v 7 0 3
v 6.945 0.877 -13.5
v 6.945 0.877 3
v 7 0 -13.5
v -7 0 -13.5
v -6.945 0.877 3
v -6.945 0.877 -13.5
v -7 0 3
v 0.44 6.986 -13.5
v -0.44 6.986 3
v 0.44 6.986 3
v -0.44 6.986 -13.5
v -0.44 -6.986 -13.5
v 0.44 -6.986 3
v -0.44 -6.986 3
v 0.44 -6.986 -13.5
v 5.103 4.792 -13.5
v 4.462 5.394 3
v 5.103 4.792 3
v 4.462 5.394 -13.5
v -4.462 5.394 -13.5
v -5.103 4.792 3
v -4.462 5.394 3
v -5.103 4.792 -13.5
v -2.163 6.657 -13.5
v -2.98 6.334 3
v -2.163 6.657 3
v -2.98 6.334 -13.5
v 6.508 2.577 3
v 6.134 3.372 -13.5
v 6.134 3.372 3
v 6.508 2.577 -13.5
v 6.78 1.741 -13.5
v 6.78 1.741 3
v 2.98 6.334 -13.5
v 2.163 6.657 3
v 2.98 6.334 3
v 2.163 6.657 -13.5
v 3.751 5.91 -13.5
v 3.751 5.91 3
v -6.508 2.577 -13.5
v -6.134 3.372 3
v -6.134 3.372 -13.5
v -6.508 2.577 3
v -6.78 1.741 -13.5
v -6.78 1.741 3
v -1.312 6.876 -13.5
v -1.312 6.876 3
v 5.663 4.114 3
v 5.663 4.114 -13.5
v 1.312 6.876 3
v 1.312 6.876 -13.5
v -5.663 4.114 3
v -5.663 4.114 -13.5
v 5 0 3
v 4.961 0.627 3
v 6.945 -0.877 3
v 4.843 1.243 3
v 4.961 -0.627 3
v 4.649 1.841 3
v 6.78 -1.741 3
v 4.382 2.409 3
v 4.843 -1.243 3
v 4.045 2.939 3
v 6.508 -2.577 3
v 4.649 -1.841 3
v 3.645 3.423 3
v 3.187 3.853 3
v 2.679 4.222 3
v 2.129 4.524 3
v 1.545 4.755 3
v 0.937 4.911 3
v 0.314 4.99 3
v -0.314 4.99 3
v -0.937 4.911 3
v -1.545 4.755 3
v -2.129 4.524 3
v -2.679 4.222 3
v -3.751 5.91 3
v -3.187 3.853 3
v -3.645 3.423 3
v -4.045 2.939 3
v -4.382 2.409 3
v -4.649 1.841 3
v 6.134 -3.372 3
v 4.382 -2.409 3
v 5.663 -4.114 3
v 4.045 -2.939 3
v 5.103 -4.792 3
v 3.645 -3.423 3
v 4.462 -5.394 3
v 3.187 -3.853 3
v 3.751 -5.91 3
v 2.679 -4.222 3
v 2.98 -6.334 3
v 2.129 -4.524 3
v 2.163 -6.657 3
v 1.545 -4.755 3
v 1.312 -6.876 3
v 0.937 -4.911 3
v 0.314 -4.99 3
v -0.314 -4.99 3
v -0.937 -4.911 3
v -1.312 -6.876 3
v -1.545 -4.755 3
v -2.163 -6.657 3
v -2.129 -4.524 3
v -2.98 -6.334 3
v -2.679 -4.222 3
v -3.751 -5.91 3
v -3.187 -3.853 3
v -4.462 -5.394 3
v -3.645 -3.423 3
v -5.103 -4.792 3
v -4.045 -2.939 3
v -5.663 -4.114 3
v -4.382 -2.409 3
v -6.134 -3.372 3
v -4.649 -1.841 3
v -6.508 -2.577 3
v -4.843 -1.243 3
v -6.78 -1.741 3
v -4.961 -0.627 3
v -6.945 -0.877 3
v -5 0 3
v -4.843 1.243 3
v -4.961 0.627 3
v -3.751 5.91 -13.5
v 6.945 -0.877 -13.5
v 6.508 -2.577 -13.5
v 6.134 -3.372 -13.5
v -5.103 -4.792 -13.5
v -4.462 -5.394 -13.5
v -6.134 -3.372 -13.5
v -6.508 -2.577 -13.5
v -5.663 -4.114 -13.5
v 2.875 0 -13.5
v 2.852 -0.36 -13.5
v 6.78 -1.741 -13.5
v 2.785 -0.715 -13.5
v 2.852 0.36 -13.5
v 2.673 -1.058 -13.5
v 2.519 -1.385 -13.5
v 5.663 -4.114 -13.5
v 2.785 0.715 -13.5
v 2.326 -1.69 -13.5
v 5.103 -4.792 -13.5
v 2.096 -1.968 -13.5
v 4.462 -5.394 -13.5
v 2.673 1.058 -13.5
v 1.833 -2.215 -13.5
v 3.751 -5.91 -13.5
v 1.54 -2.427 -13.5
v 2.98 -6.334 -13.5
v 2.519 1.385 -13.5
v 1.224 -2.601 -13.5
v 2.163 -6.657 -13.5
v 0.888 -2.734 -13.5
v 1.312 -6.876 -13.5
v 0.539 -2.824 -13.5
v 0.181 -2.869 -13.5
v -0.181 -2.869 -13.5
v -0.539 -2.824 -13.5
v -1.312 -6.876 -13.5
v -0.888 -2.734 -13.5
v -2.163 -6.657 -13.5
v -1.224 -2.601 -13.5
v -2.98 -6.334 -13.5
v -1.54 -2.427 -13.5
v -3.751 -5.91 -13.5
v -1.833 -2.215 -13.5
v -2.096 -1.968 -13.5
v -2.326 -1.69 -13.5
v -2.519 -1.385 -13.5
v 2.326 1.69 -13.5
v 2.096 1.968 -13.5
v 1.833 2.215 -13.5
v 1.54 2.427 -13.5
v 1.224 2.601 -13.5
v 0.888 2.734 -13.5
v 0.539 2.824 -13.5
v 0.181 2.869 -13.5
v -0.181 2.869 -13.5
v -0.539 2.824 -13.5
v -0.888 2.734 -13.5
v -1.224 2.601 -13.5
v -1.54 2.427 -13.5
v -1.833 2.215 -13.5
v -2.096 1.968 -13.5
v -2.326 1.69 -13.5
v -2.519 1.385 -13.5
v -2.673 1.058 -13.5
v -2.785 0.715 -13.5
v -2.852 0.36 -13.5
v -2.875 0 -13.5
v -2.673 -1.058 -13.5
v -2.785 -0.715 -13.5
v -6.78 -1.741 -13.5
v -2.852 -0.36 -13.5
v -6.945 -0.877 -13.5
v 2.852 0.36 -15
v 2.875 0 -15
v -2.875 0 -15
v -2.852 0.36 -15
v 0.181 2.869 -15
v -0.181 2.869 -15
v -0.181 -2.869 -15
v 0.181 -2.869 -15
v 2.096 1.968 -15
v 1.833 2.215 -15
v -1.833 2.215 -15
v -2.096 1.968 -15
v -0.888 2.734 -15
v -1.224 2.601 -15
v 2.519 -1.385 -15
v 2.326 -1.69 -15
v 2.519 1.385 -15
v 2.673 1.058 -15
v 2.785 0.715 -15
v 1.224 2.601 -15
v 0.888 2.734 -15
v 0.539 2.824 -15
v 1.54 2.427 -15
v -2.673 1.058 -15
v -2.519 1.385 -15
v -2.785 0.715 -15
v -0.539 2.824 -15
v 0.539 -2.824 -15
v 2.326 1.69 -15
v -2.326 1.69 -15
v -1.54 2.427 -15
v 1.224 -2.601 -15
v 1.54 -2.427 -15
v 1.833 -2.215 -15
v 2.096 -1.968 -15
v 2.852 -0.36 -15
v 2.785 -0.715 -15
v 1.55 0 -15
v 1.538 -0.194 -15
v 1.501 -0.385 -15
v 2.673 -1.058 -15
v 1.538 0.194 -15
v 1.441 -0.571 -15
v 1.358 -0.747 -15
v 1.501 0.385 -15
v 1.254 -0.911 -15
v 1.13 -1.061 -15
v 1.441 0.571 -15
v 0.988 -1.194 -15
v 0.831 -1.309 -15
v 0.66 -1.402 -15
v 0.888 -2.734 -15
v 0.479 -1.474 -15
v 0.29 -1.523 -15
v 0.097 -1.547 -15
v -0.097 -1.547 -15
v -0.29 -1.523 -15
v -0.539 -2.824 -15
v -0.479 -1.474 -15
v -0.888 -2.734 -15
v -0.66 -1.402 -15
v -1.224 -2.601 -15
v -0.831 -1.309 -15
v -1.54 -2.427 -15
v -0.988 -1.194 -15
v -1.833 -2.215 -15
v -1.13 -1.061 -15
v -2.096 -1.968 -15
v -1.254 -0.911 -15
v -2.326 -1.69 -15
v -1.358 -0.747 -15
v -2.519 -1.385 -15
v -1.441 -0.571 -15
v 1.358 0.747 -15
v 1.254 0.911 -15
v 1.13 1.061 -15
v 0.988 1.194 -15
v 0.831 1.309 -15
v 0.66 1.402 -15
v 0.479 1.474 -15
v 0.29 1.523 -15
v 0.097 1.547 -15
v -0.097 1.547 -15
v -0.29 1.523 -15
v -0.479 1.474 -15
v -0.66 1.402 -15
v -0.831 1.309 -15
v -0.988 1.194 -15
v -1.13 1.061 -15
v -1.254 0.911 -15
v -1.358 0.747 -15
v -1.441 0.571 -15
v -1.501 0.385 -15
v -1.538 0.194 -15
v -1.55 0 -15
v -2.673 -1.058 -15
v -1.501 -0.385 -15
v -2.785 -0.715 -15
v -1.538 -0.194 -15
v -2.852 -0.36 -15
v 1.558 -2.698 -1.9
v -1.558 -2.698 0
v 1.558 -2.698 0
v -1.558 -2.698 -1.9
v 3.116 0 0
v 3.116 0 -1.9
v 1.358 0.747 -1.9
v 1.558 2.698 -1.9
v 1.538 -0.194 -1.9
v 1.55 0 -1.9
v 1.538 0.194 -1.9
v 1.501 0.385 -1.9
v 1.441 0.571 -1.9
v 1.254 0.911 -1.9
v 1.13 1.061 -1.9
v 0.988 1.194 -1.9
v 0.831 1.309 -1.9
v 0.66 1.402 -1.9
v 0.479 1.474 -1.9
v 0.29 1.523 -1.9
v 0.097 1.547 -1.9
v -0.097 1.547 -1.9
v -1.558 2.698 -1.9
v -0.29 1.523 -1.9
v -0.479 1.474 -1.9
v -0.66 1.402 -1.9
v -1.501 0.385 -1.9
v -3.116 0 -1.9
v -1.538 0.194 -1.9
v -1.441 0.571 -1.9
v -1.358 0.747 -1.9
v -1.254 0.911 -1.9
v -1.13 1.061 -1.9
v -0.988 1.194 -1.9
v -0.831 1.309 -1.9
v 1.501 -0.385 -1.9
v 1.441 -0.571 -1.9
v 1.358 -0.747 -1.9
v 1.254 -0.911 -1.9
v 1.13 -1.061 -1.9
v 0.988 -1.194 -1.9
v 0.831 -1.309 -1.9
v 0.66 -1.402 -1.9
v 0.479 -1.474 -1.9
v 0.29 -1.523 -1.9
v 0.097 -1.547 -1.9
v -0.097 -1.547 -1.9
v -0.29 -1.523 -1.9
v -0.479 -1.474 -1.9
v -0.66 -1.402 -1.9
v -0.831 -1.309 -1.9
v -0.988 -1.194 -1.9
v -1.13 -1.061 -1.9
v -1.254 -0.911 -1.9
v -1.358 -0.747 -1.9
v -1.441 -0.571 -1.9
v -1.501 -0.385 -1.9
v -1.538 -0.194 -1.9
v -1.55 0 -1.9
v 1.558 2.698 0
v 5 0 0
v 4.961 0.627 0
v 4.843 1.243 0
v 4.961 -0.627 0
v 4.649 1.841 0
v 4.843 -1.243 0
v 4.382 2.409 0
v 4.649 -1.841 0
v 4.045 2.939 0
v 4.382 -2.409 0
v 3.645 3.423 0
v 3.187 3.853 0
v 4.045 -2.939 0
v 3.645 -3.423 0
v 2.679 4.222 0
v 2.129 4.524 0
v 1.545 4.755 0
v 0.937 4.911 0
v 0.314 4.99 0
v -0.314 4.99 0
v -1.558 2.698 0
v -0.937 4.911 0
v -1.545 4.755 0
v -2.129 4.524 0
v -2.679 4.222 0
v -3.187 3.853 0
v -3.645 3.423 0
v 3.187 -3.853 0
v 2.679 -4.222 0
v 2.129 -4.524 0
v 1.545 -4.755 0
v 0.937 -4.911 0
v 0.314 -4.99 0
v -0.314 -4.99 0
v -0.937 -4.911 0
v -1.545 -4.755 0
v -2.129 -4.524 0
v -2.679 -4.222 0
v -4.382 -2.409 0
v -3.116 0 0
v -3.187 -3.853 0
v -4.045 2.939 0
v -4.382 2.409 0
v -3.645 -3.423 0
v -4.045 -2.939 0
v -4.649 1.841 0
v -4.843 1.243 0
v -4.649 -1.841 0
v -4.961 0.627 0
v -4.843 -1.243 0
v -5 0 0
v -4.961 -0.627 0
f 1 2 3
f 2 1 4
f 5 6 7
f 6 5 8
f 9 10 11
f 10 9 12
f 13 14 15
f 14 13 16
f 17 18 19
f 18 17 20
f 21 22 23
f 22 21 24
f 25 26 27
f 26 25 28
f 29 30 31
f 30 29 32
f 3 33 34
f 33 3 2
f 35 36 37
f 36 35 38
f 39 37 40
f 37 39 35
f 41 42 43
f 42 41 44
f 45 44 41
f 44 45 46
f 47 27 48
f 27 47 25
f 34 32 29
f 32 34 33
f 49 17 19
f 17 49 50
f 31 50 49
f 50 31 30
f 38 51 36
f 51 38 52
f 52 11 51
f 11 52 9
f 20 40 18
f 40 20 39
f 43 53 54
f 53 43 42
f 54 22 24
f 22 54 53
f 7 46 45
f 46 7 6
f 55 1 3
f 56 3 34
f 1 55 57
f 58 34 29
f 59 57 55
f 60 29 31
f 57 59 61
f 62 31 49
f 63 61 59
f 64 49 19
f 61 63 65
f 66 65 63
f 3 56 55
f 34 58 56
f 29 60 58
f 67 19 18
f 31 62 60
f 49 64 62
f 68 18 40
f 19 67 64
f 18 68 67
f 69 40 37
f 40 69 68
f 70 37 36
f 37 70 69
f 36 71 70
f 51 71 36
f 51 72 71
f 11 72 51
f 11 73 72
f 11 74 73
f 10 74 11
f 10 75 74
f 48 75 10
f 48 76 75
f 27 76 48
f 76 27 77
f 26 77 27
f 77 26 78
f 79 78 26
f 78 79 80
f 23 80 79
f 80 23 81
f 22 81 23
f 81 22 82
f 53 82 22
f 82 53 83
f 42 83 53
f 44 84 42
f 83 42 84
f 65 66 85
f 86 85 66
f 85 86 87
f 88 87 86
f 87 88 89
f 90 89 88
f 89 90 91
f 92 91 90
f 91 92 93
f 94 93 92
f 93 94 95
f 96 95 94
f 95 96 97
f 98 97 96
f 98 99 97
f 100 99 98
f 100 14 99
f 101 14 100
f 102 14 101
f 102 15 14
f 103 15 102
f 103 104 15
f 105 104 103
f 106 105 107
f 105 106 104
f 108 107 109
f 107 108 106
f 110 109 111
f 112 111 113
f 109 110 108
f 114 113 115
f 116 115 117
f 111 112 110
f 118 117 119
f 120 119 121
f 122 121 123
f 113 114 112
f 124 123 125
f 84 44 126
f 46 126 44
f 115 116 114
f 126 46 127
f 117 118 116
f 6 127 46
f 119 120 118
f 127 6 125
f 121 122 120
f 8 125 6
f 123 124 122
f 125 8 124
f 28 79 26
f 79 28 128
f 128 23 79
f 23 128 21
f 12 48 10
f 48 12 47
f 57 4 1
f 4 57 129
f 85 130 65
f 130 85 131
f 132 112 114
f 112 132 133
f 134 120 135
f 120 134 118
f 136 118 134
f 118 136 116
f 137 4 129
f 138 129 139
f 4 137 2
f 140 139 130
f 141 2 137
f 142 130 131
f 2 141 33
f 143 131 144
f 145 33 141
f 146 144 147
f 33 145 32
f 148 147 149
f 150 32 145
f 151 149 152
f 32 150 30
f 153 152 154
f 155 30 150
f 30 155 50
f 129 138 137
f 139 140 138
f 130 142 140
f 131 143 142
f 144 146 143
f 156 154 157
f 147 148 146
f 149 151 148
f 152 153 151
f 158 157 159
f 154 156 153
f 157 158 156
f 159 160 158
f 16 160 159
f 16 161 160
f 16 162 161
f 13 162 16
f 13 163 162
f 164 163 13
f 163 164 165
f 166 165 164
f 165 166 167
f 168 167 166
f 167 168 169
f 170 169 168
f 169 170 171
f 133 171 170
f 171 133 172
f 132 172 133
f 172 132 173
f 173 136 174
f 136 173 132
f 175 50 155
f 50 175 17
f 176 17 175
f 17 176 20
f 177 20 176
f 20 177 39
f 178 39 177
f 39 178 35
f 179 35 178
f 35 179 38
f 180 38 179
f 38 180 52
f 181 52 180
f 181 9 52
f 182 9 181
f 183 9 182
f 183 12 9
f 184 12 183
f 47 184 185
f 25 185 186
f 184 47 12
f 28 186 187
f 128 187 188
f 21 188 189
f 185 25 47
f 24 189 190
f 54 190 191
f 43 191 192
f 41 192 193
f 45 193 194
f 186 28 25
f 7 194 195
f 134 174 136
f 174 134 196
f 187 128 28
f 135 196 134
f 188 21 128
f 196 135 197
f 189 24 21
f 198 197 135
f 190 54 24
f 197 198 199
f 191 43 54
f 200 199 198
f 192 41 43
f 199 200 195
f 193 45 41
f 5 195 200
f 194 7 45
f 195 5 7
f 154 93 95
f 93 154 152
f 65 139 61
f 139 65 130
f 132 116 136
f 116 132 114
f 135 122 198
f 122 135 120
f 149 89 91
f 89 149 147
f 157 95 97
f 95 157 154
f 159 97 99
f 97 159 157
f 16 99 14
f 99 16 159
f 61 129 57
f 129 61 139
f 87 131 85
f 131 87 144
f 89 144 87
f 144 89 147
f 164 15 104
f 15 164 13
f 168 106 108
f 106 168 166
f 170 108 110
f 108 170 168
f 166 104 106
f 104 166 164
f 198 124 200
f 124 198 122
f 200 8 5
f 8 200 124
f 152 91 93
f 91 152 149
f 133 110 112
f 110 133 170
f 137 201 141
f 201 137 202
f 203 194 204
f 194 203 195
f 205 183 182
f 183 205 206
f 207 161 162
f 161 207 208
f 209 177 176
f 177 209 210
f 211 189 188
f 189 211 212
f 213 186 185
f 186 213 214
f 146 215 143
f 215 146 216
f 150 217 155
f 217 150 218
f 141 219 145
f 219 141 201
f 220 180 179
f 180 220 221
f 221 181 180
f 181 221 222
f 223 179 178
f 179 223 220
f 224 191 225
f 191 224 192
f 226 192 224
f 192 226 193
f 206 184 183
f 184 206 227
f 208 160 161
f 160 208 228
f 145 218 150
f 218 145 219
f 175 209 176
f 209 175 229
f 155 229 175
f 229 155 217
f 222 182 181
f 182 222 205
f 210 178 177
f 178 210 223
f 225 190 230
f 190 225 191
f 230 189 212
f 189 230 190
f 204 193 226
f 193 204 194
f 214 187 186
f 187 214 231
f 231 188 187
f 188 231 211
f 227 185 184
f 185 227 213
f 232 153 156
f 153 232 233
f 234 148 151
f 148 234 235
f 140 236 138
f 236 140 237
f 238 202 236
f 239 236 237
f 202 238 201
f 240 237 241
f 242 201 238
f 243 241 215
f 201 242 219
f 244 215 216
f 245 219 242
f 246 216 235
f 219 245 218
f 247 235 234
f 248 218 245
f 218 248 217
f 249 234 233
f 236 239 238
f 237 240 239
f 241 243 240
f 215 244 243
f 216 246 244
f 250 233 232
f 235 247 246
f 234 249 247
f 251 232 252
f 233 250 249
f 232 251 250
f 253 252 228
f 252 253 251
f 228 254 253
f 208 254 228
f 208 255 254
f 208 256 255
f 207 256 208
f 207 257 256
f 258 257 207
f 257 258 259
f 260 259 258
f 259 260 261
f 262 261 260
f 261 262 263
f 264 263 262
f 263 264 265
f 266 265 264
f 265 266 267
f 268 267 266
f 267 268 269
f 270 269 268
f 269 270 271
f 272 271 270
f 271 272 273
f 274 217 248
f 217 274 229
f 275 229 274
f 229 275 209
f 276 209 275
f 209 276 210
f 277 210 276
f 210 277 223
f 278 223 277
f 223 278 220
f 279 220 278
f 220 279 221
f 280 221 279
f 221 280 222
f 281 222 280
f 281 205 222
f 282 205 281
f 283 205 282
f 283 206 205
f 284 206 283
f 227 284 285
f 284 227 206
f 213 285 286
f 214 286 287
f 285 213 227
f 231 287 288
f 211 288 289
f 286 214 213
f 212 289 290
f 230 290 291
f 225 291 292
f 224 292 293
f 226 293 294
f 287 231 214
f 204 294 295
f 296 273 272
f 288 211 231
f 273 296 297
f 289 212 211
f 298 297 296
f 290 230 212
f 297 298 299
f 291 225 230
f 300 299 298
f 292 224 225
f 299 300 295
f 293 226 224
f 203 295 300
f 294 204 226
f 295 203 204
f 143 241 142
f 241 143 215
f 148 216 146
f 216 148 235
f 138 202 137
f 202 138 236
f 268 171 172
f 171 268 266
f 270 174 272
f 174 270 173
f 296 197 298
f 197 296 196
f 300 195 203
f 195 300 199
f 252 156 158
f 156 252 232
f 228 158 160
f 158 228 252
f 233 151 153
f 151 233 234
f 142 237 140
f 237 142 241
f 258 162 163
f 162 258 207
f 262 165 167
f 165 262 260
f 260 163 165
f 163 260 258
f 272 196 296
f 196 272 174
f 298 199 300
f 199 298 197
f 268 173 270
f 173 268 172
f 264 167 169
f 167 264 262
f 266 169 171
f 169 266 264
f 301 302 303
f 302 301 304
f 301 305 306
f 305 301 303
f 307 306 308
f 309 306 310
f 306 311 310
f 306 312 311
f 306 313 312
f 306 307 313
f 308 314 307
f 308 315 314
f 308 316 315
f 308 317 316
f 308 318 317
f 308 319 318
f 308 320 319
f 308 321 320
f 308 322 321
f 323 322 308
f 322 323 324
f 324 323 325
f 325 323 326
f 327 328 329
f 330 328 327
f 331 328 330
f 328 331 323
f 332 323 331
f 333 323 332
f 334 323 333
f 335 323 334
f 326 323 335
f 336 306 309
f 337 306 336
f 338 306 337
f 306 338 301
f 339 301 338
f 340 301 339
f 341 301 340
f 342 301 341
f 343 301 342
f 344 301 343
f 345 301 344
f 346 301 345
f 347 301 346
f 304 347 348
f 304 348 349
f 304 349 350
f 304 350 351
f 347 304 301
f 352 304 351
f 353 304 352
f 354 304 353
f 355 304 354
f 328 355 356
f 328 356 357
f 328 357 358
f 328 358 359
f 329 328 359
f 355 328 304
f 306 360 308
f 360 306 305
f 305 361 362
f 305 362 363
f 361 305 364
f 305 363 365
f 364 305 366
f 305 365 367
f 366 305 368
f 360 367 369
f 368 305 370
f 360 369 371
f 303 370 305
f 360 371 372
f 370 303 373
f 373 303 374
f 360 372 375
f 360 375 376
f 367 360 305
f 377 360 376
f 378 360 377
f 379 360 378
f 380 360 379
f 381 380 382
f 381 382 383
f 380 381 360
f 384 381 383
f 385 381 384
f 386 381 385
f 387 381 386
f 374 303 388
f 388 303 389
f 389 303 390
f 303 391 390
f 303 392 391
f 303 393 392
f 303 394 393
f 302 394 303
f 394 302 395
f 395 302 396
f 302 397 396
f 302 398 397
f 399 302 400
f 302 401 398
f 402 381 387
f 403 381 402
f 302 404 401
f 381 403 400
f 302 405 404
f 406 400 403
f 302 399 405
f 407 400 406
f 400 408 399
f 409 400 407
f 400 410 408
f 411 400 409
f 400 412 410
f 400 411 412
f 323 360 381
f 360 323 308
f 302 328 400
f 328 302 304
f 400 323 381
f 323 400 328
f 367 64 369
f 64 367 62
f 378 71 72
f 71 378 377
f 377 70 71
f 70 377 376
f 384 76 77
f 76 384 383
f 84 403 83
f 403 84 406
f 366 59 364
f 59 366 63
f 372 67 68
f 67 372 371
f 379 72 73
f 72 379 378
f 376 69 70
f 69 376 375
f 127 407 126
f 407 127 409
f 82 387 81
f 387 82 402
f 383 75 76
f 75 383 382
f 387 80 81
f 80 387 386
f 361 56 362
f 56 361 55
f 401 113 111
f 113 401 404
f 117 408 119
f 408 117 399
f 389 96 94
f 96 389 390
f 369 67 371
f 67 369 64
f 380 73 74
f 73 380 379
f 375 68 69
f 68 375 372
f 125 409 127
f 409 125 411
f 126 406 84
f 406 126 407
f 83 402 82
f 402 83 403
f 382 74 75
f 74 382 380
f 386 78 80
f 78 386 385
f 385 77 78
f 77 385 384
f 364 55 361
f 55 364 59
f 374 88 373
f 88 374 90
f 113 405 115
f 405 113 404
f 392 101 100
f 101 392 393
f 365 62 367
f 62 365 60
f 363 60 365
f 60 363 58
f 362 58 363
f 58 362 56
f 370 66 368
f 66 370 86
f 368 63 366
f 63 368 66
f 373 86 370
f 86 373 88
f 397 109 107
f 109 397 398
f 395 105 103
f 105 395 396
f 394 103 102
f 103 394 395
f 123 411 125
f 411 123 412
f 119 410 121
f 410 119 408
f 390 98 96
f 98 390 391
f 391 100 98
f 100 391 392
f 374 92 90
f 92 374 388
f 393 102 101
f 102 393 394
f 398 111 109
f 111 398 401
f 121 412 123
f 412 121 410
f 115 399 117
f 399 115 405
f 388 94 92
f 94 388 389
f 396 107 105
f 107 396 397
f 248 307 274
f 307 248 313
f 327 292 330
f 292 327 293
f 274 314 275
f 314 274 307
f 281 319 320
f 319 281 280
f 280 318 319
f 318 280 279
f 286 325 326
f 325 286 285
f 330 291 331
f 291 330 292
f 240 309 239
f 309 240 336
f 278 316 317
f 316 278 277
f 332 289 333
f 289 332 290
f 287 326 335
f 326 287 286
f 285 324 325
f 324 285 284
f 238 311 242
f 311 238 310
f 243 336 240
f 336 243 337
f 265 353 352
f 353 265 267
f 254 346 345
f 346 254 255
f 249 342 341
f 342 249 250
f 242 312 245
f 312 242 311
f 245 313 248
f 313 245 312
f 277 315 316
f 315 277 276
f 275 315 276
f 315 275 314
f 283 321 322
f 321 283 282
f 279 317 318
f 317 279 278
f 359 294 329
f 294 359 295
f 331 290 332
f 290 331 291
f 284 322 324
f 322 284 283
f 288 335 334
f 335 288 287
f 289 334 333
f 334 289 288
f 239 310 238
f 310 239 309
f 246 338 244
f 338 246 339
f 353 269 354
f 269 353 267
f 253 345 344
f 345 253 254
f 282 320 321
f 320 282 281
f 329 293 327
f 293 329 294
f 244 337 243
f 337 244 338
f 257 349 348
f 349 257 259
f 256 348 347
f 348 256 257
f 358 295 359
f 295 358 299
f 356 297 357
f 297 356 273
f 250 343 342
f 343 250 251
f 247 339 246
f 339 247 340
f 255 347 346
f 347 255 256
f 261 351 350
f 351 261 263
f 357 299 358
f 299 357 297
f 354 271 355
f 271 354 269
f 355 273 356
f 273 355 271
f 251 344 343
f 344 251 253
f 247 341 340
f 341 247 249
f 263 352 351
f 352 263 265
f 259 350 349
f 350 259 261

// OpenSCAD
$fn = 50;

difference() {
	union() {
		translate(v = [0, 0, -13.5]) {
			cylinder(h = 16.5, r = 7.0);
		}
		#translate(v = [0, 0, -15.0]) {
			cylinder(h = 15, r = 2.875);
		}
	}
	union() {
		translate(v = [0, 0, 0]) {
			rotate(a = [0, 0, 0]) {
				difference() {
					union() {
						translate(v = [0, 0, -1.9]) {
							linear_extrude(height = 1.9) {
								polygon(points = [[3.1158, 0.0], [1.5579000000000005, 2.698361953111554], [-1.5578999999999994, 2.6983619531115544], [-3.1158, 3.815754496783323e-16], [-1.5579000000000014, -2.6983619531115535], [1.557899999999998, -2.6983619531115552]]);
							}
						}
					}
					union();
				}
			}
		}
		#cylinder(h = 3, r = 5.0);
		#translate(v = [0, 0, -100.0]) {
			cylinder(h = 200, r = 1.55);
		}
	}
}
